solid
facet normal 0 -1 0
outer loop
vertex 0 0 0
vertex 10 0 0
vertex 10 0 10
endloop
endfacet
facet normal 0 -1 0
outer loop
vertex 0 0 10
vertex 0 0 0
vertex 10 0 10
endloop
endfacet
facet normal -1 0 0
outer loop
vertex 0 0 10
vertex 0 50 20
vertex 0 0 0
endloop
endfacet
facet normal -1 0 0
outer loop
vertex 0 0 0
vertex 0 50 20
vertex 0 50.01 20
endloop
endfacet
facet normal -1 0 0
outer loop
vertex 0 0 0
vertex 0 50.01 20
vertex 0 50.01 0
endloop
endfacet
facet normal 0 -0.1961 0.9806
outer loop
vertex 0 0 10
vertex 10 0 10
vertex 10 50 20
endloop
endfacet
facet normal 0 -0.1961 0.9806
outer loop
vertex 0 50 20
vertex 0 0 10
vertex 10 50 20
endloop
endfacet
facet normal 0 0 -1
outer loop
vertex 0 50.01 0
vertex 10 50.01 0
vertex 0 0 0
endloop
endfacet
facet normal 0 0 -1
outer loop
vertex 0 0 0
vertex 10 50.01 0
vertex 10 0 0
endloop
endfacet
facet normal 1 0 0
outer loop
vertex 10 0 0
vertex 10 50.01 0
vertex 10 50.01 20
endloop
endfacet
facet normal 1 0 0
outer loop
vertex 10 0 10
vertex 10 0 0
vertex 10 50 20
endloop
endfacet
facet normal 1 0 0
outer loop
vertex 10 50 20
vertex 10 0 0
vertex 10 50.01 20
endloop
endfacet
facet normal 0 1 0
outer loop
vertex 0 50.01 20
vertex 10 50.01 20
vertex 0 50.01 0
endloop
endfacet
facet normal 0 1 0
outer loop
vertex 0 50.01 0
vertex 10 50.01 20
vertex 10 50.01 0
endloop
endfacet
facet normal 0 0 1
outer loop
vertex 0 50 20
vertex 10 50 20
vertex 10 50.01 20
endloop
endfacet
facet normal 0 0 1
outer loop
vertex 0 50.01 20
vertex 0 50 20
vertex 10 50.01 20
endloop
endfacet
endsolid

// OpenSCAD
// file: beams.scad
/* 
 * openscad beams library
 * create complex openscads objects from frames which are defining beams
 * (constructed like a ship body or airplane hull)
 *
 * https://github.com/Stemer114/openscad_beams
 * http://www.thingiverse.com/Stemer114/designs
 * 
 *    Copyright (C) 2016 Stemer114 (stemer114@merunka.de)
 *
 *    This program is free software: you can redistribute it and/or modify
 *    it under the terms of the GNU General Public License as published by
 *    the Free Software Foundation, either version 3 of the License, or
 *    (at your option) any later version.
 *
 *    This program is distributed in the hope that it will be useful,
 *    but WITHOUT ANY WARRANTY; without even the implied warranty of
 *    MERCHANTABILITY or FITNESS FOR A PARTICULAR PURPOSE.  See the
 *    GNU General Public License for more details.
 *
 *    You should have received a copy of the GNU General Public License
 *    along with this program.  If not, see <http://www.gnu.org/licenses/>.
 *

 * Credits: 
 *          for some of the examples
 *          MCAD Library - Polyholes Copyright 2011 Nophead (of RepRap fame)
 *          It is licensed under the terms of Creative Commons Attribution 3.0 Unported.
 *          https://github.com/SolidCode/MCAD/blob/master/polyholes.scad
 *
 *          BeamsVersion, libEcho and code structure inspired by 
 *          OpenSCAD Parts Library by randyy is licensed under the GNU - LGPL license. 
 *          http://www.thingiverse.com/thing:6021
 *
 */

//**** house keeping
//we define these as functions to avoid assignment problems from caller modules
function BeamsVersion() = 1.0;  //library version
function ep()=0.01;  //epsilon environment to avoid non-manifold objects


//**** module definitions

// a single rectangular frame, usually very thin
// params: w - width of frame (x direction)
//         h - height of frame (z direction)
//         d - thickness of frame (y direction, usually very thin, e.g. 0.1mm)
//         o - offset vector from origin (probably best to use x and y offsets only here for starters)
//         r - rotation vector (probably best to use only z rotation here for starters)
//         vec - vector interface, used instead of the named params
//         the vector must use the following structure (example)
//           w  h  rotation    offset        thickness
//          [3, 4, [0, 0, 90], [0, -1.5, 0], ep ],   //start (front center)
//         there is no checking other than length checking to branch in the interface
//         so better make sure the vector conforms
//         the vector interface allows you to define a list of vectors in your source file
//         and supply them all at once to the beam module (see below)
//         this probably makes more sense if you look at some of the example files
module frame(
        w = 10,  //width
        h = 10,  //height
        r = [0, 0, 0],  //rotation vector
        o = [0, 0, 0],   //offset vector
        d = ep(),  //thickness (normally very thin)
        vec = [],  //vector, default none
        )
{
    if ( len(vec)==5 ) {
        //use vector interface
        translate( vec[3] )
            rotate( vec[2] )
            cube([ vec[0], vec[4], vec[1] ]);
    } else {
        //use single param interface
        translate(o)
            rotate(r)
            cube([w, d, h]);
    }  //end else
}  //end module

// a single beam consisting of two frames at either end, connected by a hull
// to disable hull, use no_hull=true (for debugging)
// beam uses the vector interface (see above in module frame)
module beam(
        frame1 = [10, 10, [0, 0, 0], [0, 0, 0], ep() ],
        frame2 = [10, 10, [0, 0, 0], [0, 20, 0], ep() ],
        no_hull = false,   
        )
{
    if ( no_hull ) {
        frame(vec=frame1);
        frame(vec=frame2);
    } else {
        hull() {
            frame(vec=frame1);
            frame(vec=frame2);
        }  //end hull
    }  //end else
}  //end module

// a beam consisting of 2 or more frames connected by hulls
// uses the vector interface (see above)
// see example scad files in library source to get an idea how to use this
module beam_multi(frames=[], no_hull=false )
{
    if ( len(frames)<2 ) {
        echo("WARNING: beam_multi: number of frames too small (must be at least 2): ", len(frames) );
    } else {
        for ( frame = [0:len(frames)-2] ) {
            beam( frames[frame], frames[frame+1], no_hull=no_hull );
        } //end for

    }
}

/*************************************************
 * interface 
*/

libEcho=true;
if (libEcho!=false){ 
	echo("****************************************************************  ");
    echo(" beams scad library loaded.");
    echo(" Version: ", BeamsVersion() );
    echo(" usage: - include beams.scad in your project dir,");
    echo("        - then add include <beams.scad> to your script ");
	echo("        - to turn off this header, place libEcho=false; in your script");
    echo("        - see examples scad files to some inspiration")
	echo("****************************************************************  ");
}
// main file
/*
 * simple template for using openscad beams library
 * see https://github.com/Stemer114/openscad_beams
 *
 */

ep = 0.01;  //epsilon environment

include <beams.scad>

//          w   h   rotation   offset    thickness
params = [ 
           [10, 10, [0, 0, 0], [0, 0, 0], ep ],  //first frame
           [10, 20, [0, 0, 0], [0, 50, 0], ep ],  //second frame
           //expand frames as required
         ];

//construct beam using params defined above
beam_multi(frames=params );
